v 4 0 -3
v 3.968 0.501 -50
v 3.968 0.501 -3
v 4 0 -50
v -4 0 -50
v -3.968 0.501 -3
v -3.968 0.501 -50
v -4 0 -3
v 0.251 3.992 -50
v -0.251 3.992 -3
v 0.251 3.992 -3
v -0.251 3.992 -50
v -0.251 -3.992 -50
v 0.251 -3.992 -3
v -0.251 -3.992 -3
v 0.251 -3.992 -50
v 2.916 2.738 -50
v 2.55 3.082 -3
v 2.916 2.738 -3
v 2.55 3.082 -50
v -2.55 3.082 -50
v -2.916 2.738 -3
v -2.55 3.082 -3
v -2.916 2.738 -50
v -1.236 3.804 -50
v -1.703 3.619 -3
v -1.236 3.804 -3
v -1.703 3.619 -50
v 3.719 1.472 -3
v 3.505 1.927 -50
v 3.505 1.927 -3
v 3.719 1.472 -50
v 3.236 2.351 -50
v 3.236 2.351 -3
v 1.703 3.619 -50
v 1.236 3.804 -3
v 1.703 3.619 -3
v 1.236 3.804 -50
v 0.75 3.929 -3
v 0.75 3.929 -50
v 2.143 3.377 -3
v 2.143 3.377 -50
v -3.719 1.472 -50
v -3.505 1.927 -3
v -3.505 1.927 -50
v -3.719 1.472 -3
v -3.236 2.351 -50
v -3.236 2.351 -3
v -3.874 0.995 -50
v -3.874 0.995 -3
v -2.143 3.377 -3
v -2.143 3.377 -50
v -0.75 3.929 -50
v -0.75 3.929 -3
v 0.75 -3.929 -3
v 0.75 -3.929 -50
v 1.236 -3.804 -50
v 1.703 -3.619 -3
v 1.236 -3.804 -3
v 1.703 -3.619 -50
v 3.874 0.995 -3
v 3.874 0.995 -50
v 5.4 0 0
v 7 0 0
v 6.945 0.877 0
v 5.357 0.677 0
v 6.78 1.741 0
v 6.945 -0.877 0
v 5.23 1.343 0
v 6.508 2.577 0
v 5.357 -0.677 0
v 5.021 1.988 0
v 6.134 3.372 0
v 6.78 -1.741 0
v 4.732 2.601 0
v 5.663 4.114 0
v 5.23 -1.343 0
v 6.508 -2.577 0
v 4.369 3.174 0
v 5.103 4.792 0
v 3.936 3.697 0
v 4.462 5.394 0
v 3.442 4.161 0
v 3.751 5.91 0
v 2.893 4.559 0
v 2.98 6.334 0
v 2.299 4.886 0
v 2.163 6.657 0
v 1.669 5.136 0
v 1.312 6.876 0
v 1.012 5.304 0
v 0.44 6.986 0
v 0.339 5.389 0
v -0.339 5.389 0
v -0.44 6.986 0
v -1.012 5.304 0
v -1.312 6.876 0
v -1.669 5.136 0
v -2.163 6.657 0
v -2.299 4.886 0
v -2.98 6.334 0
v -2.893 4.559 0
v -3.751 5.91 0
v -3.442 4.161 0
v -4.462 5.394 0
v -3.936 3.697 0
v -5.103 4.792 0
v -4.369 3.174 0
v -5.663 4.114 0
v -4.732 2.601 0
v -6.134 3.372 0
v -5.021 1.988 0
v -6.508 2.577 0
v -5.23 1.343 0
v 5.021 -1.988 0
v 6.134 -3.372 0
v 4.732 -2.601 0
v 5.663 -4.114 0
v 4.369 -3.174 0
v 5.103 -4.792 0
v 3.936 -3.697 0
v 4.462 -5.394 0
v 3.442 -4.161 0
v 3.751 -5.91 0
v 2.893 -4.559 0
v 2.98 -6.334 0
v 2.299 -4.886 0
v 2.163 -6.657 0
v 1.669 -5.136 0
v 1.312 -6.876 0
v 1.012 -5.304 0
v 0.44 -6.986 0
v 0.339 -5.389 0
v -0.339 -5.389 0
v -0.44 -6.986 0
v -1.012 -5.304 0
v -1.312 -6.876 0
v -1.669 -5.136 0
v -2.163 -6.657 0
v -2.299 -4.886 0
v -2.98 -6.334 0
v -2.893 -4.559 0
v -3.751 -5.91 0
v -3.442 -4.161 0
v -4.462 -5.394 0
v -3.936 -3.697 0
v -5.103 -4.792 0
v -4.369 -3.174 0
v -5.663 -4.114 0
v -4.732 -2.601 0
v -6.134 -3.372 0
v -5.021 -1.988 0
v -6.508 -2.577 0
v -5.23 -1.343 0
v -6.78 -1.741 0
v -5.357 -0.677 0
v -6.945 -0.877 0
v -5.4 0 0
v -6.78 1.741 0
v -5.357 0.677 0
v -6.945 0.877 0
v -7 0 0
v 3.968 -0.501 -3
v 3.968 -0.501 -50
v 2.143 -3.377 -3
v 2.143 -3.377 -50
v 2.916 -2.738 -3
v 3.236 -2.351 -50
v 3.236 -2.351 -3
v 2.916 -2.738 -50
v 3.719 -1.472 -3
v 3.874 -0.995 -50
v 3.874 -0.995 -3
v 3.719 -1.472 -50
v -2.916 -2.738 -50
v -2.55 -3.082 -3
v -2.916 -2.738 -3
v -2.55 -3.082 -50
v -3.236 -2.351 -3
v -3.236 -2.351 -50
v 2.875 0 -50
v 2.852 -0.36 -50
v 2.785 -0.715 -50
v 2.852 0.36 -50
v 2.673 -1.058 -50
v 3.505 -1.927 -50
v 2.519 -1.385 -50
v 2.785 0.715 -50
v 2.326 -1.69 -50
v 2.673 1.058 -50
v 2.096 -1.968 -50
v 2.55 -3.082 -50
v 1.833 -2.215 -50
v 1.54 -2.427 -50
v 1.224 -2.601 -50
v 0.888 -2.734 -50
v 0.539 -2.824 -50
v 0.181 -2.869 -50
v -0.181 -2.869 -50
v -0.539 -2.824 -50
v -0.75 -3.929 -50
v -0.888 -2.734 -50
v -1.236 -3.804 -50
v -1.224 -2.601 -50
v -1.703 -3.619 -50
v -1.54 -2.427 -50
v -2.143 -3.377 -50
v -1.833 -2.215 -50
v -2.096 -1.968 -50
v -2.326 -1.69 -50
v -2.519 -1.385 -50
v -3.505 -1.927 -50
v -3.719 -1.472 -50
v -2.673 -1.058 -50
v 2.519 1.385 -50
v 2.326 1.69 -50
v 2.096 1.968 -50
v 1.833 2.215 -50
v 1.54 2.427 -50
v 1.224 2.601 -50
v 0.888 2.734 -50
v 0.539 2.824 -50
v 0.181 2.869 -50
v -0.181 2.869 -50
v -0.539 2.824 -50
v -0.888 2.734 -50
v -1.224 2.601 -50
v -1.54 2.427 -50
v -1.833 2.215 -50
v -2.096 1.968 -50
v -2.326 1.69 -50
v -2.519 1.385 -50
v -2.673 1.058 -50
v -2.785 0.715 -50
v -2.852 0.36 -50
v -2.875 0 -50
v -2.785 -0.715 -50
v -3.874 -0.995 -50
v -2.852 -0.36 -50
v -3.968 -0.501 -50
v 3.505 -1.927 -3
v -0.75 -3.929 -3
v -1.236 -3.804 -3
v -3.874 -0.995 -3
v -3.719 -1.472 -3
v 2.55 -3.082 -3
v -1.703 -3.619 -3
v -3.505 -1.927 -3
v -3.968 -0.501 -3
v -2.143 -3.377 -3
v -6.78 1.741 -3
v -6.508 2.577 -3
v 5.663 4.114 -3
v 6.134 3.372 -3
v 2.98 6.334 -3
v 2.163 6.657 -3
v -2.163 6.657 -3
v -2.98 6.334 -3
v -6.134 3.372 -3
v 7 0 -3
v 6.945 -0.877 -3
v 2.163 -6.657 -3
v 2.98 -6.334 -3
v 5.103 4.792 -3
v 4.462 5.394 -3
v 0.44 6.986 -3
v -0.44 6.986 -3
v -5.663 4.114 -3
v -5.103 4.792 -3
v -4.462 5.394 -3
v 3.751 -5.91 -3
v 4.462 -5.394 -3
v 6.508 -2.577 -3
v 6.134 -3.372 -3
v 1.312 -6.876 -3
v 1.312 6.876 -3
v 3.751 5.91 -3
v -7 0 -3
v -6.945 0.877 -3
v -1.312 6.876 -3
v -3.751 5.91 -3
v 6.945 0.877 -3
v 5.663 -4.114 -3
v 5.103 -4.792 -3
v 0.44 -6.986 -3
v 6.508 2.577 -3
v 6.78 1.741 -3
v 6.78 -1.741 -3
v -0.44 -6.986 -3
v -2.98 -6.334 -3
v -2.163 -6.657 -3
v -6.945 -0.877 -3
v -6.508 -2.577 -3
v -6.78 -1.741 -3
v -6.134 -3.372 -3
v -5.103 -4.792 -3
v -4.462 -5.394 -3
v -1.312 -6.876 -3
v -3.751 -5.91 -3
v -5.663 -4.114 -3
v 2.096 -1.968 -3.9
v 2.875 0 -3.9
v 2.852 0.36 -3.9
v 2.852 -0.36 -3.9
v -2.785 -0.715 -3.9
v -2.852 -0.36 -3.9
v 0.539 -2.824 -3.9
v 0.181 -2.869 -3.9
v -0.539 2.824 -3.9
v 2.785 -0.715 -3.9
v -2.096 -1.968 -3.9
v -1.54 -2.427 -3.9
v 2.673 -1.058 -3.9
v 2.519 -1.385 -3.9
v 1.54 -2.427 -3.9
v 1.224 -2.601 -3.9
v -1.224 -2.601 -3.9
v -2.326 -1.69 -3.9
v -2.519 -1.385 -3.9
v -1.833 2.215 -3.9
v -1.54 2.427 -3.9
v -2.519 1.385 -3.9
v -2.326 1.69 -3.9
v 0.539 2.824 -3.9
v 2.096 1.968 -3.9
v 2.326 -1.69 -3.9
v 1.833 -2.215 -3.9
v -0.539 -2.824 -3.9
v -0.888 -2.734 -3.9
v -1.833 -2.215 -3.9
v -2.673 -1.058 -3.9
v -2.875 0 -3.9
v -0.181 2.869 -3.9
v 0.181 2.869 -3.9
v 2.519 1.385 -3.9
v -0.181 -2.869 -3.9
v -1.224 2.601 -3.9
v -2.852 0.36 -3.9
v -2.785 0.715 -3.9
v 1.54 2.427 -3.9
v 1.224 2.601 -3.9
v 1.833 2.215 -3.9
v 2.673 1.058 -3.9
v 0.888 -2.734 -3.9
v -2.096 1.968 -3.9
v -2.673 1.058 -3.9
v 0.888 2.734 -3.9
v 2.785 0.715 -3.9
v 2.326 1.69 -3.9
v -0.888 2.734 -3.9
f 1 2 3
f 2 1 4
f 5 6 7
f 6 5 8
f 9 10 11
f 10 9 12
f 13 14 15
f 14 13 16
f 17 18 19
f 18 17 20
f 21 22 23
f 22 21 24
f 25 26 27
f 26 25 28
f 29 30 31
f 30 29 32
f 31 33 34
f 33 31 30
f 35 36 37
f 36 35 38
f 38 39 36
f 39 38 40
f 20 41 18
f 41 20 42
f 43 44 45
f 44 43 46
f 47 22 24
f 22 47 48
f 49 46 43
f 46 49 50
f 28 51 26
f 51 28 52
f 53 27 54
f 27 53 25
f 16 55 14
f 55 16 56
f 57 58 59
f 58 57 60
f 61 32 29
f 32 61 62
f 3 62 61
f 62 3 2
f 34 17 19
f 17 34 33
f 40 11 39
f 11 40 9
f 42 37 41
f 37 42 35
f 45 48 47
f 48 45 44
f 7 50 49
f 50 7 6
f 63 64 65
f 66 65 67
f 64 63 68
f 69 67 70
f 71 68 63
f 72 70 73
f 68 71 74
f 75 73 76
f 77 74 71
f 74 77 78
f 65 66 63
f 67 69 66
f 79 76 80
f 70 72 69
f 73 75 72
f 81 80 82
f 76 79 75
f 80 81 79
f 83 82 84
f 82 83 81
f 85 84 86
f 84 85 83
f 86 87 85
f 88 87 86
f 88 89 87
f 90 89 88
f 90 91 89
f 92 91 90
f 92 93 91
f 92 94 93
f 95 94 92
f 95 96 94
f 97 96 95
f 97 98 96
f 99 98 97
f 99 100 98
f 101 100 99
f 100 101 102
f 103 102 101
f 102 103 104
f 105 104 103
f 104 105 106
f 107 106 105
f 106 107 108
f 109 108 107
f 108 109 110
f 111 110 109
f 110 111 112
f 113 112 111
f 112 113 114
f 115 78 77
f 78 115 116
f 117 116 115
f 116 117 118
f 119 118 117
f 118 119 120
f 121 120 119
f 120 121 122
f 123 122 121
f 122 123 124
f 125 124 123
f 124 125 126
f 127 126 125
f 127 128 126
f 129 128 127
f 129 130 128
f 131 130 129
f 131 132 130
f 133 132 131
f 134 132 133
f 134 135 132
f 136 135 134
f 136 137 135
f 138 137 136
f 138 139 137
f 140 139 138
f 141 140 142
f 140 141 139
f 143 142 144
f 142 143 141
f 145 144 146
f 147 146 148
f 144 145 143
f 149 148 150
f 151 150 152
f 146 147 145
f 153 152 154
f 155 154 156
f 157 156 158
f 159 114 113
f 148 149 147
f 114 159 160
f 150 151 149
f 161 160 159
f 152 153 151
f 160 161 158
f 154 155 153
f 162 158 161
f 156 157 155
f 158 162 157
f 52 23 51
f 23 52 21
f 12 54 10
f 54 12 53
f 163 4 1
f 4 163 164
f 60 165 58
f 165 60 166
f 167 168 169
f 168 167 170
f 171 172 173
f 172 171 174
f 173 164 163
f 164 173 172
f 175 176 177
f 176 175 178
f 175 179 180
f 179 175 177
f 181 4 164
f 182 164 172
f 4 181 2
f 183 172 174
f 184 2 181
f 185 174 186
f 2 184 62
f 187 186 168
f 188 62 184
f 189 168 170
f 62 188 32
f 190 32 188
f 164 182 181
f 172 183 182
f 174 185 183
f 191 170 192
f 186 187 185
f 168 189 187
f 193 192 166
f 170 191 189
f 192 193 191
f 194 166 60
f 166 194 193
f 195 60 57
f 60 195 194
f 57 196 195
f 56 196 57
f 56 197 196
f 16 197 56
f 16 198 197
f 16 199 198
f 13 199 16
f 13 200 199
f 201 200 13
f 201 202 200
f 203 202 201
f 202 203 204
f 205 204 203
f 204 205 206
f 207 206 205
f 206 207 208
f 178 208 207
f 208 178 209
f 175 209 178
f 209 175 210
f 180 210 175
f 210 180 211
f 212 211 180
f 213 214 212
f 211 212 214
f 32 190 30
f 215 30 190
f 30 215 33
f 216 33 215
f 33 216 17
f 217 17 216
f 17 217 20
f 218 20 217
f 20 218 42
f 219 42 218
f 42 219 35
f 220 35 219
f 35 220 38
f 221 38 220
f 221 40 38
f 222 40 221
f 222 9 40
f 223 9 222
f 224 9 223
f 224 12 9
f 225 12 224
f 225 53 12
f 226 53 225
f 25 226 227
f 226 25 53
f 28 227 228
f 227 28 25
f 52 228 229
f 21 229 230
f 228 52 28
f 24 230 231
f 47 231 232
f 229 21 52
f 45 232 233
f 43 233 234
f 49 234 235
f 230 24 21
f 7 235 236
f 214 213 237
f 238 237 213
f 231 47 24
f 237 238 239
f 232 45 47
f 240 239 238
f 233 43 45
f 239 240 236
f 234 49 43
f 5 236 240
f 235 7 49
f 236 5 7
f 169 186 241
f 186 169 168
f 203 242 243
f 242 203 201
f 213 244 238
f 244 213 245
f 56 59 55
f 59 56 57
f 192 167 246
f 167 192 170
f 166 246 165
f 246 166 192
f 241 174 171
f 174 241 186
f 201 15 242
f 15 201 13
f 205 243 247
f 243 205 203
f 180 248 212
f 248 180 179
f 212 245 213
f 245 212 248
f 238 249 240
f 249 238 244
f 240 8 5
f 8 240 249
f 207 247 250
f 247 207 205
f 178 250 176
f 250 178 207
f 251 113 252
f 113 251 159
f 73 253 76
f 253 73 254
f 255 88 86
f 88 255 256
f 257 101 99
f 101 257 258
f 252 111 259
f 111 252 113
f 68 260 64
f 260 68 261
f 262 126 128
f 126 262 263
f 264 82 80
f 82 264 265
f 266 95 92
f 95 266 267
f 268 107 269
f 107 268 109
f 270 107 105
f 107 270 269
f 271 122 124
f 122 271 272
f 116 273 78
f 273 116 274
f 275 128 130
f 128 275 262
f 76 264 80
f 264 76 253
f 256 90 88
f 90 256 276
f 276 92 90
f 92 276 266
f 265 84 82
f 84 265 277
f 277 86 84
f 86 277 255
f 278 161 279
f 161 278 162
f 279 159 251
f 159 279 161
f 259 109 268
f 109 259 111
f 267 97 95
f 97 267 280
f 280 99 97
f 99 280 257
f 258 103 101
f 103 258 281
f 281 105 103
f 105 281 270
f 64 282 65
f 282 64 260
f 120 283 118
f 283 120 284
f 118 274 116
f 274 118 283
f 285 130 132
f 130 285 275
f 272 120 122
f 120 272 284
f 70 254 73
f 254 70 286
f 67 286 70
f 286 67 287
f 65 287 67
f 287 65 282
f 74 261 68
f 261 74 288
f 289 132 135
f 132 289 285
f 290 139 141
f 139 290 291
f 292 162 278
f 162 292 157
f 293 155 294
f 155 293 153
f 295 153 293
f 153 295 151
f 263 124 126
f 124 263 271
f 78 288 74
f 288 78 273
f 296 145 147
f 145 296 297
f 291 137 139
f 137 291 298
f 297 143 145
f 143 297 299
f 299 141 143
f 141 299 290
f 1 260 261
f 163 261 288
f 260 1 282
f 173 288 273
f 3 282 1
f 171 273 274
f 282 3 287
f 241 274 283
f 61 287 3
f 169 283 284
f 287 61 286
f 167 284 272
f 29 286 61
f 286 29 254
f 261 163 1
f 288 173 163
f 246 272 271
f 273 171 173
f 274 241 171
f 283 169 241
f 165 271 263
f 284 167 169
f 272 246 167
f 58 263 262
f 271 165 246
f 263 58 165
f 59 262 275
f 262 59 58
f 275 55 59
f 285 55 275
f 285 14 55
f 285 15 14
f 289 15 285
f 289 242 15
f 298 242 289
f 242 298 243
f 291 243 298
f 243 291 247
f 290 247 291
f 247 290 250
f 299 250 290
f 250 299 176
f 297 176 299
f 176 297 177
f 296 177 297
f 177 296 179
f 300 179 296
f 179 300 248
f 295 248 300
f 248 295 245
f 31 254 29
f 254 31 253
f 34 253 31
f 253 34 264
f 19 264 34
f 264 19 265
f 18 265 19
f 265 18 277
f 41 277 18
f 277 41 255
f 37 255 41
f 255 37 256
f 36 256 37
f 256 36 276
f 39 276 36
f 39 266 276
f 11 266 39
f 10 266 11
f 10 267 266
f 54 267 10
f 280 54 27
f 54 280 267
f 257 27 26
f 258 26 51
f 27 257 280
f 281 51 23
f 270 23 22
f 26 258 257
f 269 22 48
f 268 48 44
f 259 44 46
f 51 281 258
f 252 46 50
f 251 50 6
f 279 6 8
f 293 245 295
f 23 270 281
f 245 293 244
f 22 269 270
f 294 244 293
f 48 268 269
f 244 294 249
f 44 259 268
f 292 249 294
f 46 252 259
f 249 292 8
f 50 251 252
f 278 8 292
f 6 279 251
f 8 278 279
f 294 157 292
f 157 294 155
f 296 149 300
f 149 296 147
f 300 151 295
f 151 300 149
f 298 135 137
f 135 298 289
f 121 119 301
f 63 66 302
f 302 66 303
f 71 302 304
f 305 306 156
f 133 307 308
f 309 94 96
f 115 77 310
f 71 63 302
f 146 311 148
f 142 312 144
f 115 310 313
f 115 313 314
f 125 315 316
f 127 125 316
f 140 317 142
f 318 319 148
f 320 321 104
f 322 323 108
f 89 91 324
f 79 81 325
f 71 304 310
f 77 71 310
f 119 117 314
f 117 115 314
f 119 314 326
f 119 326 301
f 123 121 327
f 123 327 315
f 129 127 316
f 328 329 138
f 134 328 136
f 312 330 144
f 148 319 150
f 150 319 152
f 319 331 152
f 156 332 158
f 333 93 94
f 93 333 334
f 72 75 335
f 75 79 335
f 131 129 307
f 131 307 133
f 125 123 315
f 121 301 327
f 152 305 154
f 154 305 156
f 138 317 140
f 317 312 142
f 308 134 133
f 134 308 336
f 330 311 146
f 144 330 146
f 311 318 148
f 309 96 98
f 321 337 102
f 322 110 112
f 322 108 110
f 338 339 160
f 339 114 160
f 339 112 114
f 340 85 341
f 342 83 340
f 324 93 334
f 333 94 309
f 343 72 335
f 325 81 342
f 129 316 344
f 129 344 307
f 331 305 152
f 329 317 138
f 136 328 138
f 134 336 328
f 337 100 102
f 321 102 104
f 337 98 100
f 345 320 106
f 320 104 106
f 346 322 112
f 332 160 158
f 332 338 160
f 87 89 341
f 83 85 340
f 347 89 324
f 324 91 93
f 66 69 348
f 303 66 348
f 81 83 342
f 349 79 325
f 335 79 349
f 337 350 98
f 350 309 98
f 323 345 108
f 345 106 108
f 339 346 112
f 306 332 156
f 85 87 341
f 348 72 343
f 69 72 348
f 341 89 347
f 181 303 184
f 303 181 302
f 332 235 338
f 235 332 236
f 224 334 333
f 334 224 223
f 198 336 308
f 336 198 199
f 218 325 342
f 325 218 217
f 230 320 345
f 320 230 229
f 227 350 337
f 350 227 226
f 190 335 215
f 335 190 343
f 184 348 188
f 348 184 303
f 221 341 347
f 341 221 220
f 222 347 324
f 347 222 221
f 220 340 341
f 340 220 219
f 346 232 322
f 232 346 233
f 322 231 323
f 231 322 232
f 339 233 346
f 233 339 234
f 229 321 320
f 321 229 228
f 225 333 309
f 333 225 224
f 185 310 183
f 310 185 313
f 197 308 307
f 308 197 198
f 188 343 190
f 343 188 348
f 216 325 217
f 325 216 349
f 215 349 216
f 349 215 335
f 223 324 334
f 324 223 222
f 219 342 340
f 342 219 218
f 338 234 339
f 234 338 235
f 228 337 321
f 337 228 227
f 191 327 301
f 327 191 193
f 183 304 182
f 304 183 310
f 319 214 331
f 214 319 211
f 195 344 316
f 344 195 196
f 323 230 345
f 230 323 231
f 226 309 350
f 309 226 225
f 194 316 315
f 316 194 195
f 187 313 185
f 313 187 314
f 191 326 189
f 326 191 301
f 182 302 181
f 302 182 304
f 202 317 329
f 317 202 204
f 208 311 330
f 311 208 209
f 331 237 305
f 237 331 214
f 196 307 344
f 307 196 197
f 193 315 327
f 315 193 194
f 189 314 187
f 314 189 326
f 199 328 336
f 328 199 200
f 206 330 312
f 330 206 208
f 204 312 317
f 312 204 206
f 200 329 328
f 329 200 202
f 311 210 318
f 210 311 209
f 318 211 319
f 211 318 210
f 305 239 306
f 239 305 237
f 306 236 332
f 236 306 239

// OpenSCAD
$fn = 50;


difference() {
	union() {
		translate(v = [0, 0, -50.0000000000]) {
			cylinder(h = 50, r = 4.0000000000);
		}
		translate(v = [0, 0, -3.0000000000]) {
			cylinder(h = 3, r = 7.0000000000);
		}
	}
	union() {
		translate(v = [0, 0, 0]) {
			rotate(a = [0, 0, 0]) {
				difference() {
					union() {
						#translate(v = [0, 0, -50.0000000000]) {
							cylinder(h = 50, r = 2.6000000000);
						}
						#translate(v = [0, 0, -3.9000000000]) {
							cylinder(h = 3.9000000000, r1 = 2.8750000000, r2 = 5.4000000000);
						}
						#translate(v = [0, 0, -50.0000000000]) {
							cylinder(h = 50, r = 2.8750000000);
						}
						#translate(v = [0, 0, -50.0000000000]) {
							cylinder(h = 50, r = 2.6000000000);
						}
					}
					union();
				}
			}
		}
	}
}
